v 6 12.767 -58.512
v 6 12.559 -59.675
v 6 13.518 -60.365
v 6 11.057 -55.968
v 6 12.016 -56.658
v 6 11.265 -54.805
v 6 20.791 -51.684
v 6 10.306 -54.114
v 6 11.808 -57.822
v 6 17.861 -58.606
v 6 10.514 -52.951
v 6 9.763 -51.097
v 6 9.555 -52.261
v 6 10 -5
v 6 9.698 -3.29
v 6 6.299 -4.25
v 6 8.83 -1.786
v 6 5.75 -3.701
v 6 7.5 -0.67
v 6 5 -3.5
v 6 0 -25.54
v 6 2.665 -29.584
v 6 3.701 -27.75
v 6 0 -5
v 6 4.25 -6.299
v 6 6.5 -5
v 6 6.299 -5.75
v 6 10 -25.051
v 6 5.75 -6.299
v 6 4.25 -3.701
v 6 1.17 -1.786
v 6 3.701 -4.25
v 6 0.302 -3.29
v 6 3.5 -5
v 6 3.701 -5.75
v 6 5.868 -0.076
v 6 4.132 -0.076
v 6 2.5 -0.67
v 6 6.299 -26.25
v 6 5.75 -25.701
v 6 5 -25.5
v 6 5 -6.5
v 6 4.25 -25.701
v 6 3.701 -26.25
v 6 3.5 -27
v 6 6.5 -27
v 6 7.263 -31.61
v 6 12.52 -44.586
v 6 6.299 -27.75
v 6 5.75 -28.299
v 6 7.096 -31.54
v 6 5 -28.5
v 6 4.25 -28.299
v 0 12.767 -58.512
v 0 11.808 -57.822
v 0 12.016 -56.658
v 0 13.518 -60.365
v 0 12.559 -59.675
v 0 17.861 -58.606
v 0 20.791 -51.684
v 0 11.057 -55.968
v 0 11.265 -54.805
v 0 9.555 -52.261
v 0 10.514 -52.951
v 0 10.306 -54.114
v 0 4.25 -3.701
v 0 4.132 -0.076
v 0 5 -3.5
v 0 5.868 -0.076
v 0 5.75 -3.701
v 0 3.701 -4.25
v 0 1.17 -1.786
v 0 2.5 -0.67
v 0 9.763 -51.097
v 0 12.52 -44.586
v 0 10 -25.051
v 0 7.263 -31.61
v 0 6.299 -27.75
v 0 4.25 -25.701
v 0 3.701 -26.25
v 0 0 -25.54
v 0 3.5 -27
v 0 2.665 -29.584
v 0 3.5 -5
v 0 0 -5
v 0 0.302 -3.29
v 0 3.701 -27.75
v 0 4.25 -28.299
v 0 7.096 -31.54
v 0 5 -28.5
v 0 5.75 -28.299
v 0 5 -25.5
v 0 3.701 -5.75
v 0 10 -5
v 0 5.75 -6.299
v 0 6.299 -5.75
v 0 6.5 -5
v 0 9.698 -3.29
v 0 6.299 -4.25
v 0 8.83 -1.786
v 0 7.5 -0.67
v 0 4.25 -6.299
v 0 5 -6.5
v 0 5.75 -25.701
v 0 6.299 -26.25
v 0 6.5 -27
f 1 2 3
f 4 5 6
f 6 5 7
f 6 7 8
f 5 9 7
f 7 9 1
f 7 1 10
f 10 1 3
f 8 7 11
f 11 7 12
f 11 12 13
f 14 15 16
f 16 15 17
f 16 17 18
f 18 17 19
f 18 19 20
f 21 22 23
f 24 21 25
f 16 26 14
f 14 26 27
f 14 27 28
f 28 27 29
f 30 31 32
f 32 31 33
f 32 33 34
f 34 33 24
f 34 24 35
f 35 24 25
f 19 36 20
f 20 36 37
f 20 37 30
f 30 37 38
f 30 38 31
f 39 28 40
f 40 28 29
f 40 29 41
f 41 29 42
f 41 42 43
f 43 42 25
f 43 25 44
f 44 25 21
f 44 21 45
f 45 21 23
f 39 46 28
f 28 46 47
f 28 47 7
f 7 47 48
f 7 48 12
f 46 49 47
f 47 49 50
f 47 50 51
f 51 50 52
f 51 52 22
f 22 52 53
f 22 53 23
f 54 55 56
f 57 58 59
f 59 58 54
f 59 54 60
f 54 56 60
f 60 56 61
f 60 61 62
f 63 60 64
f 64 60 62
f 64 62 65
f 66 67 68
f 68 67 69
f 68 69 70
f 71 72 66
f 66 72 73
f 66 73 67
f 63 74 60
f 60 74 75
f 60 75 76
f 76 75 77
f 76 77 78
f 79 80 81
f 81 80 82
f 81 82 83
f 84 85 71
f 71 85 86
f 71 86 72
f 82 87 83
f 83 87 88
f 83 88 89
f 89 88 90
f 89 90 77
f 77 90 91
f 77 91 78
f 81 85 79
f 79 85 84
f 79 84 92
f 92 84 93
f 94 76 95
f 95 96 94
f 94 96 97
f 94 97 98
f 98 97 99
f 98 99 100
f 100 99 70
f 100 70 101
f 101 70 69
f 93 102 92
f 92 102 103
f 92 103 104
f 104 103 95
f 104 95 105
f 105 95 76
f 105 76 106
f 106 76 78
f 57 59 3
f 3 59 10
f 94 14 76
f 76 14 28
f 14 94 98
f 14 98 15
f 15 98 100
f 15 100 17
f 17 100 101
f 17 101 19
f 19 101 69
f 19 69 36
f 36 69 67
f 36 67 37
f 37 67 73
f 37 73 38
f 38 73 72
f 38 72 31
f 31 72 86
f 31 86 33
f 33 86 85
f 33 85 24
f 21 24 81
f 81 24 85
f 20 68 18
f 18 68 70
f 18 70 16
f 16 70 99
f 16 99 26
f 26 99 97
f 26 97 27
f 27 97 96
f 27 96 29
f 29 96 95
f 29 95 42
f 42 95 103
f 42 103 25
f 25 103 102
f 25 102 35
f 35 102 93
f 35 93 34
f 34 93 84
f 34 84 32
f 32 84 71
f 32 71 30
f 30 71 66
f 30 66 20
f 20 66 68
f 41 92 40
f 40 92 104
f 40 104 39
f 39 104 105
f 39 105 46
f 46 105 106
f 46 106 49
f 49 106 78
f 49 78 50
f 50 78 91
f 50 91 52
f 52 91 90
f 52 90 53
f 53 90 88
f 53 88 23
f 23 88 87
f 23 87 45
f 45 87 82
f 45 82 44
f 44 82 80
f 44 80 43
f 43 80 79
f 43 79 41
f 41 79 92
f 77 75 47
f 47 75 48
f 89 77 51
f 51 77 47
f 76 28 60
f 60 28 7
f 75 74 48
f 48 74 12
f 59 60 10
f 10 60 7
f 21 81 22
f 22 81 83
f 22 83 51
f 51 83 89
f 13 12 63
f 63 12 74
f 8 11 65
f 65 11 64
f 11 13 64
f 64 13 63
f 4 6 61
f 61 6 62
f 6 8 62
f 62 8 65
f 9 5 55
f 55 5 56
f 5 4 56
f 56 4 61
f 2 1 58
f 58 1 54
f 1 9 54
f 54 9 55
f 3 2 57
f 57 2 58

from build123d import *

# Parameters (mm, degrees)
SKETCH1_R           = 5
SKETCH1_R_2         = 1.5
BOSS_EXTRUDE1_DEPTH = 6
BOSS_EXTRUDE2_DEPTH = 6
CUT_EXTRUDE2_DEPTH  = 7
CUT_EXTRUDE3_DEPTH  = 10


with BuildPart() as part:
    # Sketch1 → Boss-Extrude1 (new body)
    with BuildSketch(Plane(origin=(0, 0, 0), x_dir=(0, 0, -1), z_dir=(1, 0, 0))):
        with Locations((5, 5)):
            Circle(SKETCH1_R)
        with Locations((5, 5)):
            Circle(SKETCH1_R_2, mode=Mode.SUBTRACT)
        with BuildLine():
            ThreePointArc((10, 5), (8.535533906, 1.464466094), (5, 0))
            Line((5, 0), (27, 0))
            ThreePointArc((27, 0), (22, 5), (27, 10))
            Line((27, 10), (5, 10))
            ThreePointArc((5, 10), (8.535533906, 8.535533906), (10, 5))
        make_face()
        with Locations((27, 5)):
            Circle(SKETCH1_R)
        with Locations((27, 5)):
            Circle(SKETCH1_R_2, mode=Mode.SUBTRACT)
    extrude(amount=BOSS_EXTRUDE1_DEPTH)

    # Sketch2 → Boss-Extrude2 (add)
    with BuildSketch(Plane(origin=(6, 0, 0), x_dir=(0, 0, -1), z_dir=(1, 0, 0))):
        with BuildLine():
            ThreePointArc((27, 10), (29.694507461, 9.21184396), (31.53953799, 7.095851816))
            Line((31.53953799, 7.095851816), (31.610157793, 7.262674791))
            Line((31.610157793, 7.262674791), (44.585599673, 12.519851602))
            Line((44.585599673, 12.519851602), (51.097249205, 9.763328363))
            Line((51.097249205, 9.763328363), (60.365421977, 13.518454657))
            Line((60.365421977, 13.518454657), (56.610295683, 22.786627428))
            Line((56.610295683, 22.786627428), (25.051124858, 10))
            Line((25.051124858, 10), (27, 10))
        make_face()
        Polygon((60.365421977, 13.518454657), (51.097249205, 9.763328363), (51.333822162, 9.179433479), (60.601994933, 12.934559772), align=None)
    extrude(amount=-BOSS_EXTRUDE2_DEPTH)

    # Sketch4 → Cut-Extrude2 (cut, through all)
    with BuildSketch(Plane(origin=(6, 0, 0), x_dir=(0, 0, -1), z_dir=(1, 0, 0))):
        Polygon((56.610295683, 22.786627428), (51.684261855, 20.790777803), (58.606145308, 17.8605936), align=None)
    extrude(amount=-CUT_EXTRUDE2_DEPTH, mode=Mode.SUBTRACT)

    # Sketch5 → Cut-Extrude3 (cut)
    with BuildSketch(Plane(origin=(6, 0, 0), x_dir=(0, 0, -1), z_dir=(1, 0, 0))):
        with BuildLine():
            ThreePointArc((27, 0), (31.21184396, 2.305492539), (31.53953799, 7.095851816))
            Line((31.53953799, 7.095851816), (29.583779735, 2.664986829))
            Line((29.583779735, 2.664986829), (25.539598719, 0))
            Line((25.539598719, 0), (27, 0))
        make_face()
        Polygon((52.260639439, 9.554946108), (51.097249205, 9.763328363), (51.333822162, 9.179433479), align=None)
        Polygon((52.95088376, 10.514353622), (52.260639439, 9.554946108), (54.114273993, 10.305971367), align=None)
        Polygon((54.804518314, 11.265378881), (54.114273993, 10.305971367), (55.967908548, 11.056996626), align=None)
        Polygon((56.658152868, 12.01640414), (55.967908548, 11.056996626), (57.821543102, 11.808021884), align=None)
        Polygon((58.511787422, 12.767429398), (57.821543102, 11.808021884), (59.675177656, 12.559047143), align=None)
        Polygon((60.365421977, 13.518454657), (59.675177656, 12.559047143), (60.601994933, 12.934559772), align=None)
    extrude(amount=-CUT_EXTRUDE3_DEPTH, mode=Mode.SUBTRACT)


solid = part.part
